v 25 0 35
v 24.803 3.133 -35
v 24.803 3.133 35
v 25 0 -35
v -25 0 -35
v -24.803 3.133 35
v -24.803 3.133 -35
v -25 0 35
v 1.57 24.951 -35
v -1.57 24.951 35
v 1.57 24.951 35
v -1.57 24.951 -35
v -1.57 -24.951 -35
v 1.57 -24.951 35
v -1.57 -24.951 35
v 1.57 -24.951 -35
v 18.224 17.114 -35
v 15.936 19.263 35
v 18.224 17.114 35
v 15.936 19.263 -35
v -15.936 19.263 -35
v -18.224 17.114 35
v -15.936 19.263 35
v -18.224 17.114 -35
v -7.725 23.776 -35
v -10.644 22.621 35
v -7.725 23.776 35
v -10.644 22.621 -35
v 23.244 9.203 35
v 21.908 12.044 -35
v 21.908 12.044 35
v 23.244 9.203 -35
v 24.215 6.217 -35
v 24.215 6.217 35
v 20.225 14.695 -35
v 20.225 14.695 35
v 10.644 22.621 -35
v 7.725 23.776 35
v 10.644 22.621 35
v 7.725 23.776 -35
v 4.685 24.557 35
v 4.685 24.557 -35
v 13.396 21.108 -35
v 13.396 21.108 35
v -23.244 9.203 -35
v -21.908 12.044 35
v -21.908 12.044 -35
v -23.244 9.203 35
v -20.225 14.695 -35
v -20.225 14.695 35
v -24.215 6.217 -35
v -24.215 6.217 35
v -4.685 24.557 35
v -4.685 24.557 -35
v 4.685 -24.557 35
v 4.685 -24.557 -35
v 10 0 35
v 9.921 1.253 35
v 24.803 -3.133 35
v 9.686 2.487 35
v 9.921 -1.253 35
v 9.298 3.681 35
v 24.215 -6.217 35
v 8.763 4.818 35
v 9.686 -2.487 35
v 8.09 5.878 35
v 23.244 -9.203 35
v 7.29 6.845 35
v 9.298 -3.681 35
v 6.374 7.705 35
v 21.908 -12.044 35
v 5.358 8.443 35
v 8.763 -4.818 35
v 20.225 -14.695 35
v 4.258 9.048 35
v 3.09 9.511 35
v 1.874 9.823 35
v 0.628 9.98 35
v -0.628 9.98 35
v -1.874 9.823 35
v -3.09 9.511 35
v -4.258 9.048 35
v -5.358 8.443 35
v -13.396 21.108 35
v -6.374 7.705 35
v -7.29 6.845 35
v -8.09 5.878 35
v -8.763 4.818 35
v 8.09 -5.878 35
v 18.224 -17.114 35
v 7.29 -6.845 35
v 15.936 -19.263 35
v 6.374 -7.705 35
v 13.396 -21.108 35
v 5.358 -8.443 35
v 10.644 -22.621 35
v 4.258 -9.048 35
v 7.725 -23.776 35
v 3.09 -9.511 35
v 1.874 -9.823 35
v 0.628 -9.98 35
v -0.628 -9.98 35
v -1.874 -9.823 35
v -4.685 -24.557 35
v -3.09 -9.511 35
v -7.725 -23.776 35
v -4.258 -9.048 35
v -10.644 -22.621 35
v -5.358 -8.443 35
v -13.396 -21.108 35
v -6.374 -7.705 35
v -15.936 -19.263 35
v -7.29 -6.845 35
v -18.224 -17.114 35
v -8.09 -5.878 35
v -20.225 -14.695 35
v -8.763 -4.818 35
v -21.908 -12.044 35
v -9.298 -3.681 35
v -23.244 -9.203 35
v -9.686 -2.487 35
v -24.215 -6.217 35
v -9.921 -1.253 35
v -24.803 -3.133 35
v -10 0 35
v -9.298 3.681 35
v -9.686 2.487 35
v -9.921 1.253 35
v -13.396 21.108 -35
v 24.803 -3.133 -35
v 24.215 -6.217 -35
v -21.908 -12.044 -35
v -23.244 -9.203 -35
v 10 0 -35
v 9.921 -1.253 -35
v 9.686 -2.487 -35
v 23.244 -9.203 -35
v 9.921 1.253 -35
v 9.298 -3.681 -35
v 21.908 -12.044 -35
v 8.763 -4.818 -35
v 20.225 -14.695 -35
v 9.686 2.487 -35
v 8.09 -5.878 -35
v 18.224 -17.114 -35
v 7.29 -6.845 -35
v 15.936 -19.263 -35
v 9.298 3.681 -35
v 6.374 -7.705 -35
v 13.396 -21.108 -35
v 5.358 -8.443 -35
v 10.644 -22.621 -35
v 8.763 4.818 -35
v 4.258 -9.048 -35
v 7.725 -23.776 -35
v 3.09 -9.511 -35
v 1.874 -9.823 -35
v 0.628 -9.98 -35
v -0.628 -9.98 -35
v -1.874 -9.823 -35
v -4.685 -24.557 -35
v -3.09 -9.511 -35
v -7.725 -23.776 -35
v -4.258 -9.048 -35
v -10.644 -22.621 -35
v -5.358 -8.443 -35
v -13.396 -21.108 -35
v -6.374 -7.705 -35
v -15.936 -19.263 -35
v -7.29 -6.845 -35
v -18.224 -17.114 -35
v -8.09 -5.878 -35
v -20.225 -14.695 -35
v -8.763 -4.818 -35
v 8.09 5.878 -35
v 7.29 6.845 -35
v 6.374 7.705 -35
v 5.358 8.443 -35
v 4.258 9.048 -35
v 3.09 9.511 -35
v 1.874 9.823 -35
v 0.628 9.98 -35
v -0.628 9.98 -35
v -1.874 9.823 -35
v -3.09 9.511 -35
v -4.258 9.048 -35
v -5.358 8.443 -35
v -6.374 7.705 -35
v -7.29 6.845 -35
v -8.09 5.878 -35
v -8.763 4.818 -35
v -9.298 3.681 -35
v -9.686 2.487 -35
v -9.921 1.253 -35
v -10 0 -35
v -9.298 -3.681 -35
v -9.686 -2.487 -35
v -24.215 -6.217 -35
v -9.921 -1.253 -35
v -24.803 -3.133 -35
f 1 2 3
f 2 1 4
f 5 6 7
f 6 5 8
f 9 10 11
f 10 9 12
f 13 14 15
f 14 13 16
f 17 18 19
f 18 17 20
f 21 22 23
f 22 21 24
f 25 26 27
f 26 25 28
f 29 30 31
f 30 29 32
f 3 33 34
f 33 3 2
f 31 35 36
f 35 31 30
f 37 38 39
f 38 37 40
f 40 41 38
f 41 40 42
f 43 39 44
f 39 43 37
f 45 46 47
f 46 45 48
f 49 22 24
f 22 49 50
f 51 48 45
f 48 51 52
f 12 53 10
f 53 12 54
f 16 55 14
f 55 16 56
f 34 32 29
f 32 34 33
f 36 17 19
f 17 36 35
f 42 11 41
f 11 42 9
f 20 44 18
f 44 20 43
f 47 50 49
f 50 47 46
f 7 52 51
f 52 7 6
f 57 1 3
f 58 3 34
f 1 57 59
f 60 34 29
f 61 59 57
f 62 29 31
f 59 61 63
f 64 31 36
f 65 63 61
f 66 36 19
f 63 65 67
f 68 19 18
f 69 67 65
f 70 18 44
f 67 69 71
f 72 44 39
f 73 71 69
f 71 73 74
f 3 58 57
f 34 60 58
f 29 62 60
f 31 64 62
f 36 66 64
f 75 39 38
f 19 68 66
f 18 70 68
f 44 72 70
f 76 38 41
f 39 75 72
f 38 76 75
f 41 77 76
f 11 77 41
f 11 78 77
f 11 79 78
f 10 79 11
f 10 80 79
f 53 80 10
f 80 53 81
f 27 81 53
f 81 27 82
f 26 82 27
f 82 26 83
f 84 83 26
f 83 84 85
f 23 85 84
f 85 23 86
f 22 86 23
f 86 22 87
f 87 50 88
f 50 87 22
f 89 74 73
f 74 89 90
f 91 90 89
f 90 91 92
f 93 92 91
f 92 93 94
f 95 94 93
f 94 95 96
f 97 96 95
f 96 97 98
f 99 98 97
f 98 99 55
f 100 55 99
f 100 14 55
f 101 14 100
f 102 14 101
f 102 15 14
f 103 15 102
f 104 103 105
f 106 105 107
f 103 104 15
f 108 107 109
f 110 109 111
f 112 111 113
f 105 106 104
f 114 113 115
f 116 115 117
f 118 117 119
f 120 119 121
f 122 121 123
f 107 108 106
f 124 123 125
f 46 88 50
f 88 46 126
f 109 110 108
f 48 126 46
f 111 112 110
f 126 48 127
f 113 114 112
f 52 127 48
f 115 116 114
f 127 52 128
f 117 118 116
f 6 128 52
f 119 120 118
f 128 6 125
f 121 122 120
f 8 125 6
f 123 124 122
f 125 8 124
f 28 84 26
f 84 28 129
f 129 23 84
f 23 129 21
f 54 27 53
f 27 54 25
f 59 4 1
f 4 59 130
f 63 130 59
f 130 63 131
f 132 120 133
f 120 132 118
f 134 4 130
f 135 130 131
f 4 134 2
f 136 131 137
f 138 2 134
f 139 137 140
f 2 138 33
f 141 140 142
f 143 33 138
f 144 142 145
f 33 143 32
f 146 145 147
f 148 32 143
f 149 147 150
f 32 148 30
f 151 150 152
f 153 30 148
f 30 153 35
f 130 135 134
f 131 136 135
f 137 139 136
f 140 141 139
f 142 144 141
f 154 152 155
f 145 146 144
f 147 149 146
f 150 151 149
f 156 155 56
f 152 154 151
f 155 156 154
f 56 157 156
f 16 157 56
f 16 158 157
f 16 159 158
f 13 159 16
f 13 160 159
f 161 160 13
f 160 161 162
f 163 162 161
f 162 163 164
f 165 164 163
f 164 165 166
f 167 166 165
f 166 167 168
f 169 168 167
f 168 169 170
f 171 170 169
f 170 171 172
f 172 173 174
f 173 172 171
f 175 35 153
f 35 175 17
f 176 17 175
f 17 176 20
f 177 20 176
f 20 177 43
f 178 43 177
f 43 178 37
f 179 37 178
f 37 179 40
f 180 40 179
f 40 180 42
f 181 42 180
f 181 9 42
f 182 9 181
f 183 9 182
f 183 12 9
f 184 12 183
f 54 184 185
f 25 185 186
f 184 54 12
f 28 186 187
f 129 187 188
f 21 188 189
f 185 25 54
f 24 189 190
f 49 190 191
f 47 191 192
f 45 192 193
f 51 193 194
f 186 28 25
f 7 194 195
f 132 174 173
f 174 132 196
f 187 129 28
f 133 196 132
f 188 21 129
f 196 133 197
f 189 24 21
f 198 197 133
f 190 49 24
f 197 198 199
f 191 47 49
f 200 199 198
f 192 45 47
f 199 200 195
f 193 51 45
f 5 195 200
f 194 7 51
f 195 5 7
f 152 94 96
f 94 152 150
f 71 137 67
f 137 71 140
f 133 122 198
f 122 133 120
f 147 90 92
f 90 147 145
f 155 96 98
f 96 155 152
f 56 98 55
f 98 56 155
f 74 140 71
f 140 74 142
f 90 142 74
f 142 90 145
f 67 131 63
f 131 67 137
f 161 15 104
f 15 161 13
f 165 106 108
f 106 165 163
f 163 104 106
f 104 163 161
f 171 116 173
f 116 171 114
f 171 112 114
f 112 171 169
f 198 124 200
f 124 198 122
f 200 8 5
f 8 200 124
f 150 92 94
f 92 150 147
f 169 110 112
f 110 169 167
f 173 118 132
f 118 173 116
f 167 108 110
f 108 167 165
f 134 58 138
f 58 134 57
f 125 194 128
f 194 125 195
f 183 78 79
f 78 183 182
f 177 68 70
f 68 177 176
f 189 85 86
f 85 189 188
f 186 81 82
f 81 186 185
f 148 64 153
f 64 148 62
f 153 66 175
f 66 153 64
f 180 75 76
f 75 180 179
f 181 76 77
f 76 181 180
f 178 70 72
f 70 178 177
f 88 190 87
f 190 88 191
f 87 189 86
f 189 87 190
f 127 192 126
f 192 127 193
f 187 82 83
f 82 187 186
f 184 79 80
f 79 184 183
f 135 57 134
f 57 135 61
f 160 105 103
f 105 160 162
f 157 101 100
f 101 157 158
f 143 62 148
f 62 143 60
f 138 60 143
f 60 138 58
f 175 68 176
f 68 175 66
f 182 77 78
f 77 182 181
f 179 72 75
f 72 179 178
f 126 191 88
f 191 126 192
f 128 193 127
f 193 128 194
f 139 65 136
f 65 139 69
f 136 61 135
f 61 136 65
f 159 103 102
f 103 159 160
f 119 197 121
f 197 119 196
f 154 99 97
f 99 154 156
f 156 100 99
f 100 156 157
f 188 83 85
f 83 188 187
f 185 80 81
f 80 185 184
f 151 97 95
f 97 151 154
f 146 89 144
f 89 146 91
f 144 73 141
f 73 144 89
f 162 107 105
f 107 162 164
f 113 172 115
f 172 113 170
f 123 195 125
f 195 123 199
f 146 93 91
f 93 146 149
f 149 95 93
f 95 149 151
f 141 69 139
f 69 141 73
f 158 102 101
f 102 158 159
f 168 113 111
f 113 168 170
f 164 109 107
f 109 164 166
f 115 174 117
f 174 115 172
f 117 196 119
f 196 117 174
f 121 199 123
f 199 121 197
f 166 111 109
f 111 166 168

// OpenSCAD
$fn = 50;


difference() {
	union() {
		translate(v = [0, 0, -35.0000000000]) {
			cylinder(h = 70, r = 25.0000000000);
		}
	}
	union() {
		translate(v = [0, 0, -100.0000000000]) {
			cylinder(h = 200, r = 10);
		}
	}
}
